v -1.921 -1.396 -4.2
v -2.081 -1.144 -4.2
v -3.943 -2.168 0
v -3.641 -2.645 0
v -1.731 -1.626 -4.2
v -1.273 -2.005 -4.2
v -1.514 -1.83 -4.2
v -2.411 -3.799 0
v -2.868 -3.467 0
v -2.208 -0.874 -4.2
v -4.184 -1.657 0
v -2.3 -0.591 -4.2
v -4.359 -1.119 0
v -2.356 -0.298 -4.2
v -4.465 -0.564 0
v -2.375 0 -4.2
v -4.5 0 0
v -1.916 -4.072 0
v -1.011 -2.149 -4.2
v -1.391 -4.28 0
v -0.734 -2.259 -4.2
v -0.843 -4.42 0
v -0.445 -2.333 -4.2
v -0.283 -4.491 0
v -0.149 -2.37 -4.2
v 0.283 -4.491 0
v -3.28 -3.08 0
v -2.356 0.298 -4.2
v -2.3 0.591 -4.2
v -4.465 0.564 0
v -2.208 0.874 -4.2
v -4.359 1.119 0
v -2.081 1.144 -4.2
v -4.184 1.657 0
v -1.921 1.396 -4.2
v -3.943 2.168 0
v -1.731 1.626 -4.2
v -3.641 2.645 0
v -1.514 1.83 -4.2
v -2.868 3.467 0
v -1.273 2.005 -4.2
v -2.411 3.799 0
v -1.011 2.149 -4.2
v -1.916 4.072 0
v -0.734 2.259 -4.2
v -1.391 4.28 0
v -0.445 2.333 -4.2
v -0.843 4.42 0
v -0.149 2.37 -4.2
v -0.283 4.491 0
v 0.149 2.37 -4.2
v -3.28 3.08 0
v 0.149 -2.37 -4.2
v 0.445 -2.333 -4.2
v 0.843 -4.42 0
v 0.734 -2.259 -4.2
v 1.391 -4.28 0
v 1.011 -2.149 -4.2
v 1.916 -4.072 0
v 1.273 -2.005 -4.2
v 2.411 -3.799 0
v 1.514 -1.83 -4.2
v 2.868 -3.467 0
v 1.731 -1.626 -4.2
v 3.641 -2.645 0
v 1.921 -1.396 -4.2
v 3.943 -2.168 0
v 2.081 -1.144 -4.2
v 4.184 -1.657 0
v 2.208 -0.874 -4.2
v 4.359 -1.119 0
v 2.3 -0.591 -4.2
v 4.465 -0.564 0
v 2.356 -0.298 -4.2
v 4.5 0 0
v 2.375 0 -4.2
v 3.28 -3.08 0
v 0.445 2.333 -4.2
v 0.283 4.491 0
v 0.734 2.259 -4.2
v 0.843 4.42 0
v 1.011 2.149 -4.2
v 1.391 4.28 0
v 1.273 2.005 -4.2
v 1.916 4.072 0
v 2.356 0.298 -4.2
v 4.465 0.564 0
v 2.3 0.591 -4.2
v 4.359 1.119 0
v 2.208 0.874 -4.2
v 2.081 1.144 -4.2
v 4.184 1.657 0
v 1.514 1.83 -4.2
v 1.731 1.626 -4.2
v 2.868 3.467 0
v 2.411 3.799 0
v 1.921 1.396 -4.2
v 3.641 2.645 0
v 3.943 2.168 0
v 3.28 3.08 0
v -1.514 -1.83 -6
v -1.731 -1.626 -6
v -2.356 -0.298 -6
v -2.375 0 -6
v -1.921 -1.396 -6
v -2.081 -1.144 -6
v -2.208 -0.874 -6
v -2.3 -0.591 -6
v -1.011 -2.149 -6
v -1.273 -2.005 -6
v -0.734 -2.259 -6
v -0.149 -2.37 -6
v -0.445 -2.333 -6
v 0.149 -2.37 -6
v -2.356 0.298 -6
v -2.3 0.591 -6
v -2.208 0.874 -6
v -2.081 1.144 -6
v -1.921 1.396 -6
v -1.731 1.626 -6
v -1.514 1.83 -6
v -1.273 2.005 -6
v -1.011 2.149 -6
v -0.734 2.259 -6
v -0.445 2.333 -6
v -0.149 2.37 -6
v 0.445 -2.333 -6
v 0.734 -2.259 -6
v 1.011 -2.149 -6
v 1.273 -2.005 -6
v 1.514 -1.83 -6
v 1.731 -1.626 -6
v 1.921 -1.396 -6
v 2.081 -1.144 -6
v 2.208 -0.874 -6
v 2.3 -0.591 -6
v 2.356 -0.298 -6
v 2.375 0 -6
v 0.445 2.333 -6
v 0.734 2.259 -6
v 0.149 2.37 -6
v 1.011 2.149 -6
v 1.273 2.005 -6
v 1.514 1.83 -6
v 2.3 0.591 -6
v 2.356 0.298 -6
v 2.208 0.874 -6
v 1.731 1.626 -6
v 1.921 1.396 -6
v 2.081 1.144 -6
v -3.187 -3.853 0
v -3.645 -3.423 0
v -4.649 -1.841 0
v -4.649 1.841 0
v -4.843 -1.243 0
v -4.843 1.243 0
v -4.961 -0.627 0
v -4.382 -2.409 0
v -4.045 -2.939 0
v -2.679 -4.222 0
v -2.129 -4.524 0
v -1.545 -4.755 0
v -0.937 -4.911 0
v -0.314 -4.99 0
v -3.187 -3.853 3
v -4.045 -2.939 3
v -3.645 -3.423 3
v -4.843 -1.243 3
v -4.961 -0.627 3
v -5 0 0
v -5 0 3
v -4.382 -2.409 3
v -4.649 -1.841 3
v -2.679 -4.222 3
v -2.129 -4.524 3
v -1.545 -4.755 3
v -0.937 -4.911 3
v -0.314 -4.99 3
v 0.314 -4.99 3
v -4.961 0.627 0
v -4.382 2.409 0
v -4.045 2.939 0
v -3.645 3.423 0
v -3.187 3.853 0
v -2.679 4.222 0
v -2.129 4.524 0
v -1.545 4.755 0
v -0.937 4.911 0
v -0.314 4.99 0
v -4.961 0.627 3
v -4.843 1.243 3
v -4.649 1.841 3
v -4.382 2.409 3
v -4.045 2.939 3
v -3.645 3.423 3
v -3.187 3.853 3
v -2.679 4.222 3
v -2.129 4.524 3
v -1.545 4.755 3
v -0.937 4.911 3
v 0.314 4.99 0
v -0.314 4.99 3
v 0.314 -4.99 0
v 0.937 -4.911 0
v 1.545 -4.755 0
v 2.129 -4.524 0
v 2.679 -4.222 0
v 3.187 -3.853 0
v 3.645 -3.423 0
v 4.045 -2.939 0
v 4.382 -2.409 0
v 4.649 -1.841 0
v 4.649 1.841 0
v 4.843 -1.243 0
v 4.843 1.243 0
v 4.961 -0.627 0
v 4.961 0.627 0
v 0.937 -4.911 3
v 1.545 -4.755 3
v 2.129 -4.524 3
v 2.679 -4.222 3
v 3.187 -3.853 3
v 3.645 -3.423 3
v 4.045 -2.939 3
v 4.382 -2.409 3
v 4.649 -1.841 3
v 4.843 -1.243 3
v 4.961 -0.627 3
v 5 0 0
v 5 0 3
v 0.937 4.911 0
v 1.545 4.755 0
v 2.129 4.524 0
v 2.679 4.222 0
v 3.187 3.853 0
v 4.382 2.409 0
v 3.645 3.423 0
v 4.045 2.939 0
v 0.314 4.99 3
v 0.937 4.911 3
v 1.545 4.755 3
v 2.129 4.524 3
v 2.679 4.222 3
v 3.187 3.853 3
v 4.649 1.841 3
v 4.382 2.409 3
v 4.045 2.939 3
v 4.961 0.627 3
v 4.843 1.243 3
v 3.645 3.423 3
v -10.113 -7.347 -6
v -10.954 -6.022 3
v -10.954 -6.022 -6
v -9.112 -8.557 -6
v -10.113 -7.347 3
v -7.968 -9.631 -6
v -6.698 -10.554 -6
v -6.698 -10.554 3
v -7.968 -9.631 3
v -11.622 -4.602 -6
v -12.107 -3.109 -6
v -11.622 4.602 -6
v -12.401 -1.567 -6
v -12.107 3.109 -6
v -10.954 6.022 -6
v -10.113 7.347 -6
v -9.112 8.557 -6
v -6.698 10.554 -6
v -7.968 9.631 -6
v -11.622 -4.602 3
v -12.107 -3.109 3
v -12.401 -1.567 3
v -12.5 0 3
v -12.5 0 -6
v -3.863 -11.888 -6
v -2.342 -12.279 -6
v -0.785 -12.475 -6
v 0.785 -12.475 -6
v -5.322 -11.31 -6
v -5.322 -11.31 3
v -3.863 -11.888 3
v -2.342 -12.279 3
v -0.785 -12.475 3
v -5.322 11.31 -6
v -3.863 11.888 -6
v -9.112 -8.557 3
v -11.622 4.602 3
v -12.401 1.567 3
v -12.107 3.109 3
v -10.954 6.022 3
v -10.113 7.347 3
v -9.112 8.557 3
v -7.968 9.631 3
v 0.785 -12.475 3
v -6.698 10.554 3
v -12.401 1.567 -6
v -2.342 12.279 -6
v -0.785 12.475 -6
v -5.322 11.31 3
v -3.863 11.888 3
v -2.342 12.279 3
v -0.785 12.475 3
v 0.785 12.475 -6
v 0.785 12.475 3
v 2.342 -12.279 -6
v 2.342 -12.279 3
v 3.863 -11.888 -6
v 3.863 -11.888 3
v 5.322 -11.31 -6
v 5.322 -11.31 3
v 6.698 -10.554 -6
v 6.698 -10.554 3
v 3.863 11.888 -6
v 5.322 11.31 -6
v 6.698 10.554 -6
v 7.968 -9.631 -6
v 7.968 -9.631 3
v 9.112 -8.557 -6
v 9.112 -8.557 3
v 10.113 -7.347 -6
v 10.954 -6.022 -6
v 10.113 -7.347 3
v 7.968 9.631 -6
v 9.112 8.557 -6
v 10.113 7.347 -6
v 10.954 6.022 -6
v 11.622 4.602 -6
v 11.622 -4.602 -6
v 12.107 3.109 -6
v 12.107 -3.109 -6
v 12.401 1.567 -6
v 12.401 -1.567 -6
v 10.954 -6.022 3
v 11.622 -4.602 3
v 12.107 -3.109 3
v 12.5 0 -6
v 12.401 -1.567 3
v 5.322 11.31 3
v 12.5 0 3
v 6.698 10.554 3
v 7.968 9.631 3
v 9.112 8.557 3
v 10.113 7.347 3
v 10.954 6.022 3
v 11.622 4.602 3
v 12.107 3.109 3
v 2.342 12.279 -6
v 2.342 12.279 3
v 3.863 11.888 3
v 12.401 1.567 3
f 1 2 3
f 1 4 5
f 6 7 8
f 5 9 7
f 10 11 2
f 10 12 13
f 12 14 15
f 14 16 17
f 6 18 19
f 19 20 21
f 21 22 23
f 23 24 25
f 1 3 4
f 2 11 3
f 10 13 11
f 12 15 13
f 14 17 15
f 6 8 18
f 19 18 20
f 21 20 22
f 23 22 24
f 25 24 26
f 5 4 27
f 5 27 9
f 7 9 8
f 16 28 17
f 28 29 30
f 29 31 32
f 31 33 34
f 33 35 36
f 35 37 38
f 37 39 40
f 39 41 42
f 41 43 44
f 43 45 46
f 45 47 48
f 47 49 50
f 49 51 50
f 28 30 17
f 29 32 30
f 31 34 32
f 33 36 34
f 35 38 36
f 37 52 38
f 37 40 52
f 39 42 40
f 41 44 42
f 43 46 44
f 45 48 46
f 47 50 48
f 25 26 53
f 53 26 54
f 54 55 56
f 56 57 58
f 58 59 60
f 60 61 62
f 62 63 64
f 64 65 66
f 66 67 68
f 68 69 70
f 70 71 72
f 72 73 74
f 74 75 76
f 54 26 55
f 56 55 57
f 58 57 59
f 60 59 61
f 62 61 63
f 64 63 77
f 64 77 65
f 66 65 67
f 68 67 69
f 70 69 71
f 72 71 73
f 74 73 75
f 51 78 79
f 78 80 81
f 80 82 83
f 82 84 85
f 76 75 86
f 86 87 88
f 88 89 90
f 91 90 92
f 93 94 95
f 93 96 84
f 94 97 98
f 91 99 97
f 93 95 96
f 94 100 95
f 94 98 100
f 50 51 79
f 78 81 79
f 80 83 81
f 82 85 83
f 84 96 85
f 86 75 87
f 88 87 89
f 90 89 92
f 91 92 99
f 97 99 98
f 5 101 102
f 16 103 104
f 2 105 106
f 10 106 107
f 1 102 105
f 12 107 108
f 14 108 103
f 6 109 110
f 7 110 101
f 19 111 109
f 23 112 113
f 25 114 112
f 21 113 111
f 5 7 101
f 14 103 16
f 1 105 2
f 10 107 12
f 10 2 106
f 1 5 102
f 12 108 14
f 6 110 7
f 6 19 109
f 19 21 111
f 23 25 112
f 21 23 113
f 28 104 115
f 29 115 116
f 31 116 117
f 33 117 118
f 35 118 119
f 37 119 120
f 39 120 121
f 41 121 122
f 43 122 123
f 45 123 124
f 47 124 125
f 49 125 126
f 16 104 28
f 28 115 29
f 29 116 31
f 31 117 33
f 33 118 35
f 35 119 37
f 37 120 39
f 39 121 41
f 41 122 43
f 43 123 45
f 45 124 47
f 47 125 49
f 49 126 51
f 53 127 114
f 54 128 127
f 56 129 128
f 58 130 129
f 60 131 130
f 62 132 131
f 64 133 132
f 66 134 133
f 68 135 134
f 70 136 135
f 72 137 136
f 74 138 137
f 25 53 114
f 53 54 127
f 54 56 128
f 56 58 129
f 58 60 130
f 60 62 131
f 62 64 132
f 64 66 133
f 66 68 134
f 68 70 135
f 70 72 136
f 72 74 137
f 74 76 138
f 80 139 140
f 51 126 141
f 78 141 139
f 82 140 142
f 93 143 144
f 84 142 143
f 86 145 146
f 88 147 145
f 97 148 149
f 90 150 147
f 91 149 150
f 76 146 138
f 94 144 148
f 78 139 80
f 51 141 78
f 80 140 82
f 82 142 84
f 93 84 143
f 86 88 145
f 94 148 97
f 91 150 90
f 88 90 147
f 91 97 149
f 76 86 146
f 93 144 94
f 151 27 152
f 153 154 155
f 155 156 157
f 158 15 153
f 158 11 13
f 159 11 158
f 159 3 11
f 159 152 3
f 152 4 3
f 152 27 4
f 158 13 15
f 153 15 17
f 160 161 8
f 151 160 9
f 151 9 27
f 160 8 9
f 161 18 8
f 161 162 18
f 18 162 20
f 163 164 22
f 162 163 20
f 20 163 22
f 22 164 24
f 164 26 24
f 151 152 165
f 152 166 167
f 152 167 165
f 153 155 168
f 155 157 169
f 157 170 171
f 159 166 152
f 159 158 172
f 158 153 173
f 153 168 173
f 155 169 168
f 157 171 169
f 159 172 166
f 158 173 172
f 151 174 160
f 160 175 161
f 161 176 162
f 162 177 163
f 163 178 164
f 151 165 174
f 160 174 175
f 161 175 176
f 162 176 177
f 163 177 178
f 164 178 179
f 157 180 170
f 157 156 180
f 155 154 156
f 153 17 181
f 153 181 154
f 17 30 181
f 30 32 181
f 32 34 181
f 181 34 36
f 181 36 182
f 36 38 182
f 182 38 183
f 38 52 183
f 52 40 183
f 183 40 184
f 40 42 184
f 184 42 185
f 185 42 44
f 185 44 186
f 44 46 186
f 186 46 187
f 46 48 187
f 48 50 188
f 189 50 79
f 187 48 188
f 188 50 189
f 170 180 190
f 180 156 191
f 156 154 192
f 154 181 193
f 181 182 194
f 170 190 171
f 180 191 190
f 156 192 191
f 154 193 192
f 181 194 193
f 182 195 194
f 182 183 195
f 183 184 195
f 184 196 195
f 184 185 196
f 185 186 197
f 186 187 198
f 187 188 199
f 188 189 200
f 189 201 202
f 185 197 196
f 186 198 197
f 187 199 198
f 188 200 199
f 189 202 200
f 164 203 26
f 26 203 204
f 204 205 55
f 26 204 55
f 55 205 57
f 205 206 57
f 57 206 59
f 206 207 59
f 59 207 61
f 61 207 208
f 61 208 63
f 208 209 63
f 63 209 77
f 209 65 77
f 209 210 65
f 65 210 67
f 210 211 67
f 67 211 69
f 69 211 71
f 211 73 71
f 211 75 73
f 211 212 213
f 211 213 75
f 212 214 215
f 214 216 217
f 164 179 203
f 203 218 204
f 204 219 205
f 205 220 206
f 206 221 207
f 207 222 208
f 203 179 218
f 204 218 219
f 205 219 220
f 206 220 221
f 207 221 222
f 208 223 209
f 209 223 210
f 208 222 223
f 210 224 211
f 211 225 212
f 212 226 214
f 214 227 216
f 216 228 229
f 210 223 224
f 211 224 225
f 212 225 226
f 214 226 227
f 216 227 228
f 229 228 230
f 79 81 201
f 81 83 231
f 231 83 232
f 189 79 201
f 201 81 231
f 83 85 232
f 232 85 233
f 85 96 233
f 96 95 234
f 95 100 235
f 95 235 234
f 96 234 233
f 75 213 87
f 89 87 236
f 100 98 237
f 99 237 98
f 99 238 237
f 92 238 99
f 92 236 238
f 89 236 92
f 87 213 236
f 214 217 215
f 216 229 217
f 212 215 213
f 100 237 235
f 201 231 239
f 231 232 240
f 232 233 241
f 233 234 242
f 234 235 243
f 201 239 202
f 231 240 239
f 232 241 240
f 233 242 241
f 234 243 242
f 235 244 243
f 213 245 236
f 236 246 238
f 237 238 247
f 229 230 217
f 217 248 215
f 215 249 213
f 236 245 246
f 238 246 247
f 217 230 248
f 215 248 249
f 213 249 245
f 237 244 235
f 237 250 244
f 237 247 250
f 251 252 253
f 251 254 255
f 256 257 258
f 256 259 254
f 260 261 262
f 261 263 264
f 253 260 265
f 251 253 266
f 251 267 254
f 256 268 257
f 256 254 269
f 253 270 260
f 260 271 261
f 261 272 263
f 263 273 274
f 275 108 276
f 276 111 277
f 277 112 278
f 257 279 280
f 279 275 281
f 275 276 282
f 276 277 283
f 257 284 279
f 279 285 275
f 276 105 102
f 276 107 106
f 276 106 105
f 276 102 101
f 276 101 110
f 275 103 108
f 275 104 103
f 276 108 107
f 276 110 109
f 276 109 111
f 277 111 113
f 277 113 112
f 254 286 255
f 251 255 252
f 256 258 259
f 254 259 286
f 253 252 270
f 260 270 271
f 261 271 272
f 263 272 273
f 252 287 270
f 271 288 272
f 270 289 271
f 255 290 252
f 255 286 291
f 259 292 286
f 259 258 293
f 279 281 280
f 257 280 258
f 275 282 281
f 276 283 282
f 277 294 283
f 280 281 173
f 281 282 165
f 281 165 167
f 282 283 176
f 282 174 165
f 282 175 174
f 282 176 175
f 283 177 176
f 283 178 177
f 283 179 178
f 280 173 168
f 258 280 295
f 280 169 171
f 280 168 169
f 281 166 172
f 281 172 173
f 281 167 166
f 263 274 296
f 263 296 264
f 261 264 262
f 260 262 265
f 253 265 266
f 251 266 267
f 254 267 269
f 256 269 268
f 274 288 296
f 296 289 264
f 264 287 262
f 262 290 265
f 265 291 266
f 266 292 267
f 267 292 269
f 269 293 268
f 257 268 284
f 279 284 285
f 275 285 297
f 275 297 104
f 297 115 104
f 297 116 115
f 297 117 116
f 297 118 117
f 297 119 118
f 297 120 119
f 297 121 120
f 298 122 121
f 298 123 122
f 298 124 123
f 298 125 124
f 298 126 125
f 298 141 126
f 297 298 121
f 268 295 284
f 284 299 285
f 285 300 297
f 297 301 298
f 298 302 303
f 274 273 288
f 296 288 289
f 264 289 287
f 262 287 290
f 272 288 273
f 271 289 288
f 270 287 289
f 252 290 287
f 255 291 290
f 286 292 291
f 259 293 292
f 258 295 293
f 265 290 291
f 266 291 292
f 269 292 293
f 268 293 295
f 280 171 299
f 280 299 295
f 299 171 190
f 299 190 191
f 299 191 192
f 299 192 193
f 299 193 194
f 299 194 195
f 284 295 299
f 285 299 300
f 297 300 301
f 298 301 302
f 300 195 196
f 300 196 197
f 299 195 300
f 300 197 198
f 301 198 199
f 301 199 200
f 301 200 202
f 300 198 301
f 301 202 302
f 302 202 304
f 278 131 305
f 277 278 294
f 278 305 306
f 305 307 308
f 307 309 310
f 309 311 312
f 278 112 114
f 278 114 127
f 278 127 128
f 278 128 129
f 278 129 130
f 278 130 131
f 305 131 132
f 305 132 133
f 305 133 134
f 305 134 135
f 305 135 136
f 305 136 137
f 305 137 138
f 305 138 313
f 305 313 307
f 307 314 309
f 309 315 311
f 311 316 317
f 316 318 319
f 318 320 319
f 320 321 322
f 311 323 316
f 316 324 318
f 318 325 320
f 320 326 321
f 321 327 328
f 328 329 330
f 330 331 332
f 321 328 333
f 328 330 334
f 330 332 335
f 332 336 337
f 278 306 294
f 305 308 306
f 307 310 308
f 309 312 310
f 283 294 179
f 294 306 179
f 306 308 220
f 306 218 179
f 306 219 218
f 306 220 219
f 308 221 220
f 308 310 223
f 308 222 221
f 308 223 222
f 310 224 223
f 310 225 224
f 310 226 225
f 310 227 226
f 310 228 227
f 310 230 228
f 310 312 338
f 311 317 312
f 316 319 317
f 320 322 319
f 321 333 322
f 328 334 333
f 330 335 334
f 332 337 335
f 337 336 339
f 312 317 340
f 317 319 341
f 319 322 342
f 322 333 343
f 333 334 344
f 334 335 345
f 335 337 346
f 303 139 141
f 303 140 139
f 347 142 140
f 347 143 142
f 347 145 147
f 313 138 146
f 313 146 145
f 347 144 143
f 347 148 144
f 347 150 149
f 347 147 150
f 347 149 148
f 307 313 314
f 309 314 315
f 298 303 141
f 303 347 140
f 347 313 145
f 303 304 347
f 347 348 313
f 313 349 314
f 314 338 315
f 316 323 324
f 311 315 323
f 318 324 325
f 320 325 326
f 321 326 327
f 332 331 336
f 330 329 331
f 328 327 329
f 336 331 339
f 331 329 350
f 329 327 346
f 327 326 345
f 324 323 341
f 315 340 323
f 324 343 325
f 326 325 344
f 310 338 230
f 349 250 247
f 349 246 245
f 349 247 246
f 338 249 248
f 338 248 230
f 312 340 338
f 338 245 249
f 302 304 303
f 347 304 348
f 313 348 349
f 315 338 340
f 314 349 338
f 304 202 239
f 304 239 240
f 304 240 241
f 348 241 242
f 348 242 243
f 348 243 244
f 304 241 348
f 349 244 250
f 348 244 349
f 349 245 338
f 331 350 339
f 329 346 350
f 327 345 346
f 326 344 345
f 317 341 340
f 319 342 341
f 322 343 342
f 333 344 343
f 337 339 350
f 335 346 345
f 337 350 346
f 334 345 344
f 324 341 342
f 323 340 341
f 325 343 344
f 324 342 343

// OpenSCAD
$fn = 50;


difference() {
	union() {
		translate(v = [0, 0, -6.0000000000]) {
			cylinder(h = 9, r = 12.5000000000);
		}
	}
	union() {
		translate(v = [0, 0, 0]) {
			rotate(a = [0, 0, 0]) {
				difference() {
					union() {
						translate(v = [0, 0, -9.0000000000]) {
							cylinder(h = 9, r = 2.2500000000);
						}
						translate(v = [0, 0, -4.2000000000]) {
							cylinder(h = 4.2000000000, r1 = 2.3750000000, r2 = 4.5000000000);
						}
						translate(v = [0, 0, -9.0000000000]) {
							cylinder(h = 9, r = 2.3750000000);
						}
						translate(v = [0, 0, -9.0000000000]) {
							cylinder(h = 9, r = 2.2500000000);
						}
					}
					union();
				}
			}
		}
		#cylinder(h = 3, r = 5.0000000000);
	}
}
